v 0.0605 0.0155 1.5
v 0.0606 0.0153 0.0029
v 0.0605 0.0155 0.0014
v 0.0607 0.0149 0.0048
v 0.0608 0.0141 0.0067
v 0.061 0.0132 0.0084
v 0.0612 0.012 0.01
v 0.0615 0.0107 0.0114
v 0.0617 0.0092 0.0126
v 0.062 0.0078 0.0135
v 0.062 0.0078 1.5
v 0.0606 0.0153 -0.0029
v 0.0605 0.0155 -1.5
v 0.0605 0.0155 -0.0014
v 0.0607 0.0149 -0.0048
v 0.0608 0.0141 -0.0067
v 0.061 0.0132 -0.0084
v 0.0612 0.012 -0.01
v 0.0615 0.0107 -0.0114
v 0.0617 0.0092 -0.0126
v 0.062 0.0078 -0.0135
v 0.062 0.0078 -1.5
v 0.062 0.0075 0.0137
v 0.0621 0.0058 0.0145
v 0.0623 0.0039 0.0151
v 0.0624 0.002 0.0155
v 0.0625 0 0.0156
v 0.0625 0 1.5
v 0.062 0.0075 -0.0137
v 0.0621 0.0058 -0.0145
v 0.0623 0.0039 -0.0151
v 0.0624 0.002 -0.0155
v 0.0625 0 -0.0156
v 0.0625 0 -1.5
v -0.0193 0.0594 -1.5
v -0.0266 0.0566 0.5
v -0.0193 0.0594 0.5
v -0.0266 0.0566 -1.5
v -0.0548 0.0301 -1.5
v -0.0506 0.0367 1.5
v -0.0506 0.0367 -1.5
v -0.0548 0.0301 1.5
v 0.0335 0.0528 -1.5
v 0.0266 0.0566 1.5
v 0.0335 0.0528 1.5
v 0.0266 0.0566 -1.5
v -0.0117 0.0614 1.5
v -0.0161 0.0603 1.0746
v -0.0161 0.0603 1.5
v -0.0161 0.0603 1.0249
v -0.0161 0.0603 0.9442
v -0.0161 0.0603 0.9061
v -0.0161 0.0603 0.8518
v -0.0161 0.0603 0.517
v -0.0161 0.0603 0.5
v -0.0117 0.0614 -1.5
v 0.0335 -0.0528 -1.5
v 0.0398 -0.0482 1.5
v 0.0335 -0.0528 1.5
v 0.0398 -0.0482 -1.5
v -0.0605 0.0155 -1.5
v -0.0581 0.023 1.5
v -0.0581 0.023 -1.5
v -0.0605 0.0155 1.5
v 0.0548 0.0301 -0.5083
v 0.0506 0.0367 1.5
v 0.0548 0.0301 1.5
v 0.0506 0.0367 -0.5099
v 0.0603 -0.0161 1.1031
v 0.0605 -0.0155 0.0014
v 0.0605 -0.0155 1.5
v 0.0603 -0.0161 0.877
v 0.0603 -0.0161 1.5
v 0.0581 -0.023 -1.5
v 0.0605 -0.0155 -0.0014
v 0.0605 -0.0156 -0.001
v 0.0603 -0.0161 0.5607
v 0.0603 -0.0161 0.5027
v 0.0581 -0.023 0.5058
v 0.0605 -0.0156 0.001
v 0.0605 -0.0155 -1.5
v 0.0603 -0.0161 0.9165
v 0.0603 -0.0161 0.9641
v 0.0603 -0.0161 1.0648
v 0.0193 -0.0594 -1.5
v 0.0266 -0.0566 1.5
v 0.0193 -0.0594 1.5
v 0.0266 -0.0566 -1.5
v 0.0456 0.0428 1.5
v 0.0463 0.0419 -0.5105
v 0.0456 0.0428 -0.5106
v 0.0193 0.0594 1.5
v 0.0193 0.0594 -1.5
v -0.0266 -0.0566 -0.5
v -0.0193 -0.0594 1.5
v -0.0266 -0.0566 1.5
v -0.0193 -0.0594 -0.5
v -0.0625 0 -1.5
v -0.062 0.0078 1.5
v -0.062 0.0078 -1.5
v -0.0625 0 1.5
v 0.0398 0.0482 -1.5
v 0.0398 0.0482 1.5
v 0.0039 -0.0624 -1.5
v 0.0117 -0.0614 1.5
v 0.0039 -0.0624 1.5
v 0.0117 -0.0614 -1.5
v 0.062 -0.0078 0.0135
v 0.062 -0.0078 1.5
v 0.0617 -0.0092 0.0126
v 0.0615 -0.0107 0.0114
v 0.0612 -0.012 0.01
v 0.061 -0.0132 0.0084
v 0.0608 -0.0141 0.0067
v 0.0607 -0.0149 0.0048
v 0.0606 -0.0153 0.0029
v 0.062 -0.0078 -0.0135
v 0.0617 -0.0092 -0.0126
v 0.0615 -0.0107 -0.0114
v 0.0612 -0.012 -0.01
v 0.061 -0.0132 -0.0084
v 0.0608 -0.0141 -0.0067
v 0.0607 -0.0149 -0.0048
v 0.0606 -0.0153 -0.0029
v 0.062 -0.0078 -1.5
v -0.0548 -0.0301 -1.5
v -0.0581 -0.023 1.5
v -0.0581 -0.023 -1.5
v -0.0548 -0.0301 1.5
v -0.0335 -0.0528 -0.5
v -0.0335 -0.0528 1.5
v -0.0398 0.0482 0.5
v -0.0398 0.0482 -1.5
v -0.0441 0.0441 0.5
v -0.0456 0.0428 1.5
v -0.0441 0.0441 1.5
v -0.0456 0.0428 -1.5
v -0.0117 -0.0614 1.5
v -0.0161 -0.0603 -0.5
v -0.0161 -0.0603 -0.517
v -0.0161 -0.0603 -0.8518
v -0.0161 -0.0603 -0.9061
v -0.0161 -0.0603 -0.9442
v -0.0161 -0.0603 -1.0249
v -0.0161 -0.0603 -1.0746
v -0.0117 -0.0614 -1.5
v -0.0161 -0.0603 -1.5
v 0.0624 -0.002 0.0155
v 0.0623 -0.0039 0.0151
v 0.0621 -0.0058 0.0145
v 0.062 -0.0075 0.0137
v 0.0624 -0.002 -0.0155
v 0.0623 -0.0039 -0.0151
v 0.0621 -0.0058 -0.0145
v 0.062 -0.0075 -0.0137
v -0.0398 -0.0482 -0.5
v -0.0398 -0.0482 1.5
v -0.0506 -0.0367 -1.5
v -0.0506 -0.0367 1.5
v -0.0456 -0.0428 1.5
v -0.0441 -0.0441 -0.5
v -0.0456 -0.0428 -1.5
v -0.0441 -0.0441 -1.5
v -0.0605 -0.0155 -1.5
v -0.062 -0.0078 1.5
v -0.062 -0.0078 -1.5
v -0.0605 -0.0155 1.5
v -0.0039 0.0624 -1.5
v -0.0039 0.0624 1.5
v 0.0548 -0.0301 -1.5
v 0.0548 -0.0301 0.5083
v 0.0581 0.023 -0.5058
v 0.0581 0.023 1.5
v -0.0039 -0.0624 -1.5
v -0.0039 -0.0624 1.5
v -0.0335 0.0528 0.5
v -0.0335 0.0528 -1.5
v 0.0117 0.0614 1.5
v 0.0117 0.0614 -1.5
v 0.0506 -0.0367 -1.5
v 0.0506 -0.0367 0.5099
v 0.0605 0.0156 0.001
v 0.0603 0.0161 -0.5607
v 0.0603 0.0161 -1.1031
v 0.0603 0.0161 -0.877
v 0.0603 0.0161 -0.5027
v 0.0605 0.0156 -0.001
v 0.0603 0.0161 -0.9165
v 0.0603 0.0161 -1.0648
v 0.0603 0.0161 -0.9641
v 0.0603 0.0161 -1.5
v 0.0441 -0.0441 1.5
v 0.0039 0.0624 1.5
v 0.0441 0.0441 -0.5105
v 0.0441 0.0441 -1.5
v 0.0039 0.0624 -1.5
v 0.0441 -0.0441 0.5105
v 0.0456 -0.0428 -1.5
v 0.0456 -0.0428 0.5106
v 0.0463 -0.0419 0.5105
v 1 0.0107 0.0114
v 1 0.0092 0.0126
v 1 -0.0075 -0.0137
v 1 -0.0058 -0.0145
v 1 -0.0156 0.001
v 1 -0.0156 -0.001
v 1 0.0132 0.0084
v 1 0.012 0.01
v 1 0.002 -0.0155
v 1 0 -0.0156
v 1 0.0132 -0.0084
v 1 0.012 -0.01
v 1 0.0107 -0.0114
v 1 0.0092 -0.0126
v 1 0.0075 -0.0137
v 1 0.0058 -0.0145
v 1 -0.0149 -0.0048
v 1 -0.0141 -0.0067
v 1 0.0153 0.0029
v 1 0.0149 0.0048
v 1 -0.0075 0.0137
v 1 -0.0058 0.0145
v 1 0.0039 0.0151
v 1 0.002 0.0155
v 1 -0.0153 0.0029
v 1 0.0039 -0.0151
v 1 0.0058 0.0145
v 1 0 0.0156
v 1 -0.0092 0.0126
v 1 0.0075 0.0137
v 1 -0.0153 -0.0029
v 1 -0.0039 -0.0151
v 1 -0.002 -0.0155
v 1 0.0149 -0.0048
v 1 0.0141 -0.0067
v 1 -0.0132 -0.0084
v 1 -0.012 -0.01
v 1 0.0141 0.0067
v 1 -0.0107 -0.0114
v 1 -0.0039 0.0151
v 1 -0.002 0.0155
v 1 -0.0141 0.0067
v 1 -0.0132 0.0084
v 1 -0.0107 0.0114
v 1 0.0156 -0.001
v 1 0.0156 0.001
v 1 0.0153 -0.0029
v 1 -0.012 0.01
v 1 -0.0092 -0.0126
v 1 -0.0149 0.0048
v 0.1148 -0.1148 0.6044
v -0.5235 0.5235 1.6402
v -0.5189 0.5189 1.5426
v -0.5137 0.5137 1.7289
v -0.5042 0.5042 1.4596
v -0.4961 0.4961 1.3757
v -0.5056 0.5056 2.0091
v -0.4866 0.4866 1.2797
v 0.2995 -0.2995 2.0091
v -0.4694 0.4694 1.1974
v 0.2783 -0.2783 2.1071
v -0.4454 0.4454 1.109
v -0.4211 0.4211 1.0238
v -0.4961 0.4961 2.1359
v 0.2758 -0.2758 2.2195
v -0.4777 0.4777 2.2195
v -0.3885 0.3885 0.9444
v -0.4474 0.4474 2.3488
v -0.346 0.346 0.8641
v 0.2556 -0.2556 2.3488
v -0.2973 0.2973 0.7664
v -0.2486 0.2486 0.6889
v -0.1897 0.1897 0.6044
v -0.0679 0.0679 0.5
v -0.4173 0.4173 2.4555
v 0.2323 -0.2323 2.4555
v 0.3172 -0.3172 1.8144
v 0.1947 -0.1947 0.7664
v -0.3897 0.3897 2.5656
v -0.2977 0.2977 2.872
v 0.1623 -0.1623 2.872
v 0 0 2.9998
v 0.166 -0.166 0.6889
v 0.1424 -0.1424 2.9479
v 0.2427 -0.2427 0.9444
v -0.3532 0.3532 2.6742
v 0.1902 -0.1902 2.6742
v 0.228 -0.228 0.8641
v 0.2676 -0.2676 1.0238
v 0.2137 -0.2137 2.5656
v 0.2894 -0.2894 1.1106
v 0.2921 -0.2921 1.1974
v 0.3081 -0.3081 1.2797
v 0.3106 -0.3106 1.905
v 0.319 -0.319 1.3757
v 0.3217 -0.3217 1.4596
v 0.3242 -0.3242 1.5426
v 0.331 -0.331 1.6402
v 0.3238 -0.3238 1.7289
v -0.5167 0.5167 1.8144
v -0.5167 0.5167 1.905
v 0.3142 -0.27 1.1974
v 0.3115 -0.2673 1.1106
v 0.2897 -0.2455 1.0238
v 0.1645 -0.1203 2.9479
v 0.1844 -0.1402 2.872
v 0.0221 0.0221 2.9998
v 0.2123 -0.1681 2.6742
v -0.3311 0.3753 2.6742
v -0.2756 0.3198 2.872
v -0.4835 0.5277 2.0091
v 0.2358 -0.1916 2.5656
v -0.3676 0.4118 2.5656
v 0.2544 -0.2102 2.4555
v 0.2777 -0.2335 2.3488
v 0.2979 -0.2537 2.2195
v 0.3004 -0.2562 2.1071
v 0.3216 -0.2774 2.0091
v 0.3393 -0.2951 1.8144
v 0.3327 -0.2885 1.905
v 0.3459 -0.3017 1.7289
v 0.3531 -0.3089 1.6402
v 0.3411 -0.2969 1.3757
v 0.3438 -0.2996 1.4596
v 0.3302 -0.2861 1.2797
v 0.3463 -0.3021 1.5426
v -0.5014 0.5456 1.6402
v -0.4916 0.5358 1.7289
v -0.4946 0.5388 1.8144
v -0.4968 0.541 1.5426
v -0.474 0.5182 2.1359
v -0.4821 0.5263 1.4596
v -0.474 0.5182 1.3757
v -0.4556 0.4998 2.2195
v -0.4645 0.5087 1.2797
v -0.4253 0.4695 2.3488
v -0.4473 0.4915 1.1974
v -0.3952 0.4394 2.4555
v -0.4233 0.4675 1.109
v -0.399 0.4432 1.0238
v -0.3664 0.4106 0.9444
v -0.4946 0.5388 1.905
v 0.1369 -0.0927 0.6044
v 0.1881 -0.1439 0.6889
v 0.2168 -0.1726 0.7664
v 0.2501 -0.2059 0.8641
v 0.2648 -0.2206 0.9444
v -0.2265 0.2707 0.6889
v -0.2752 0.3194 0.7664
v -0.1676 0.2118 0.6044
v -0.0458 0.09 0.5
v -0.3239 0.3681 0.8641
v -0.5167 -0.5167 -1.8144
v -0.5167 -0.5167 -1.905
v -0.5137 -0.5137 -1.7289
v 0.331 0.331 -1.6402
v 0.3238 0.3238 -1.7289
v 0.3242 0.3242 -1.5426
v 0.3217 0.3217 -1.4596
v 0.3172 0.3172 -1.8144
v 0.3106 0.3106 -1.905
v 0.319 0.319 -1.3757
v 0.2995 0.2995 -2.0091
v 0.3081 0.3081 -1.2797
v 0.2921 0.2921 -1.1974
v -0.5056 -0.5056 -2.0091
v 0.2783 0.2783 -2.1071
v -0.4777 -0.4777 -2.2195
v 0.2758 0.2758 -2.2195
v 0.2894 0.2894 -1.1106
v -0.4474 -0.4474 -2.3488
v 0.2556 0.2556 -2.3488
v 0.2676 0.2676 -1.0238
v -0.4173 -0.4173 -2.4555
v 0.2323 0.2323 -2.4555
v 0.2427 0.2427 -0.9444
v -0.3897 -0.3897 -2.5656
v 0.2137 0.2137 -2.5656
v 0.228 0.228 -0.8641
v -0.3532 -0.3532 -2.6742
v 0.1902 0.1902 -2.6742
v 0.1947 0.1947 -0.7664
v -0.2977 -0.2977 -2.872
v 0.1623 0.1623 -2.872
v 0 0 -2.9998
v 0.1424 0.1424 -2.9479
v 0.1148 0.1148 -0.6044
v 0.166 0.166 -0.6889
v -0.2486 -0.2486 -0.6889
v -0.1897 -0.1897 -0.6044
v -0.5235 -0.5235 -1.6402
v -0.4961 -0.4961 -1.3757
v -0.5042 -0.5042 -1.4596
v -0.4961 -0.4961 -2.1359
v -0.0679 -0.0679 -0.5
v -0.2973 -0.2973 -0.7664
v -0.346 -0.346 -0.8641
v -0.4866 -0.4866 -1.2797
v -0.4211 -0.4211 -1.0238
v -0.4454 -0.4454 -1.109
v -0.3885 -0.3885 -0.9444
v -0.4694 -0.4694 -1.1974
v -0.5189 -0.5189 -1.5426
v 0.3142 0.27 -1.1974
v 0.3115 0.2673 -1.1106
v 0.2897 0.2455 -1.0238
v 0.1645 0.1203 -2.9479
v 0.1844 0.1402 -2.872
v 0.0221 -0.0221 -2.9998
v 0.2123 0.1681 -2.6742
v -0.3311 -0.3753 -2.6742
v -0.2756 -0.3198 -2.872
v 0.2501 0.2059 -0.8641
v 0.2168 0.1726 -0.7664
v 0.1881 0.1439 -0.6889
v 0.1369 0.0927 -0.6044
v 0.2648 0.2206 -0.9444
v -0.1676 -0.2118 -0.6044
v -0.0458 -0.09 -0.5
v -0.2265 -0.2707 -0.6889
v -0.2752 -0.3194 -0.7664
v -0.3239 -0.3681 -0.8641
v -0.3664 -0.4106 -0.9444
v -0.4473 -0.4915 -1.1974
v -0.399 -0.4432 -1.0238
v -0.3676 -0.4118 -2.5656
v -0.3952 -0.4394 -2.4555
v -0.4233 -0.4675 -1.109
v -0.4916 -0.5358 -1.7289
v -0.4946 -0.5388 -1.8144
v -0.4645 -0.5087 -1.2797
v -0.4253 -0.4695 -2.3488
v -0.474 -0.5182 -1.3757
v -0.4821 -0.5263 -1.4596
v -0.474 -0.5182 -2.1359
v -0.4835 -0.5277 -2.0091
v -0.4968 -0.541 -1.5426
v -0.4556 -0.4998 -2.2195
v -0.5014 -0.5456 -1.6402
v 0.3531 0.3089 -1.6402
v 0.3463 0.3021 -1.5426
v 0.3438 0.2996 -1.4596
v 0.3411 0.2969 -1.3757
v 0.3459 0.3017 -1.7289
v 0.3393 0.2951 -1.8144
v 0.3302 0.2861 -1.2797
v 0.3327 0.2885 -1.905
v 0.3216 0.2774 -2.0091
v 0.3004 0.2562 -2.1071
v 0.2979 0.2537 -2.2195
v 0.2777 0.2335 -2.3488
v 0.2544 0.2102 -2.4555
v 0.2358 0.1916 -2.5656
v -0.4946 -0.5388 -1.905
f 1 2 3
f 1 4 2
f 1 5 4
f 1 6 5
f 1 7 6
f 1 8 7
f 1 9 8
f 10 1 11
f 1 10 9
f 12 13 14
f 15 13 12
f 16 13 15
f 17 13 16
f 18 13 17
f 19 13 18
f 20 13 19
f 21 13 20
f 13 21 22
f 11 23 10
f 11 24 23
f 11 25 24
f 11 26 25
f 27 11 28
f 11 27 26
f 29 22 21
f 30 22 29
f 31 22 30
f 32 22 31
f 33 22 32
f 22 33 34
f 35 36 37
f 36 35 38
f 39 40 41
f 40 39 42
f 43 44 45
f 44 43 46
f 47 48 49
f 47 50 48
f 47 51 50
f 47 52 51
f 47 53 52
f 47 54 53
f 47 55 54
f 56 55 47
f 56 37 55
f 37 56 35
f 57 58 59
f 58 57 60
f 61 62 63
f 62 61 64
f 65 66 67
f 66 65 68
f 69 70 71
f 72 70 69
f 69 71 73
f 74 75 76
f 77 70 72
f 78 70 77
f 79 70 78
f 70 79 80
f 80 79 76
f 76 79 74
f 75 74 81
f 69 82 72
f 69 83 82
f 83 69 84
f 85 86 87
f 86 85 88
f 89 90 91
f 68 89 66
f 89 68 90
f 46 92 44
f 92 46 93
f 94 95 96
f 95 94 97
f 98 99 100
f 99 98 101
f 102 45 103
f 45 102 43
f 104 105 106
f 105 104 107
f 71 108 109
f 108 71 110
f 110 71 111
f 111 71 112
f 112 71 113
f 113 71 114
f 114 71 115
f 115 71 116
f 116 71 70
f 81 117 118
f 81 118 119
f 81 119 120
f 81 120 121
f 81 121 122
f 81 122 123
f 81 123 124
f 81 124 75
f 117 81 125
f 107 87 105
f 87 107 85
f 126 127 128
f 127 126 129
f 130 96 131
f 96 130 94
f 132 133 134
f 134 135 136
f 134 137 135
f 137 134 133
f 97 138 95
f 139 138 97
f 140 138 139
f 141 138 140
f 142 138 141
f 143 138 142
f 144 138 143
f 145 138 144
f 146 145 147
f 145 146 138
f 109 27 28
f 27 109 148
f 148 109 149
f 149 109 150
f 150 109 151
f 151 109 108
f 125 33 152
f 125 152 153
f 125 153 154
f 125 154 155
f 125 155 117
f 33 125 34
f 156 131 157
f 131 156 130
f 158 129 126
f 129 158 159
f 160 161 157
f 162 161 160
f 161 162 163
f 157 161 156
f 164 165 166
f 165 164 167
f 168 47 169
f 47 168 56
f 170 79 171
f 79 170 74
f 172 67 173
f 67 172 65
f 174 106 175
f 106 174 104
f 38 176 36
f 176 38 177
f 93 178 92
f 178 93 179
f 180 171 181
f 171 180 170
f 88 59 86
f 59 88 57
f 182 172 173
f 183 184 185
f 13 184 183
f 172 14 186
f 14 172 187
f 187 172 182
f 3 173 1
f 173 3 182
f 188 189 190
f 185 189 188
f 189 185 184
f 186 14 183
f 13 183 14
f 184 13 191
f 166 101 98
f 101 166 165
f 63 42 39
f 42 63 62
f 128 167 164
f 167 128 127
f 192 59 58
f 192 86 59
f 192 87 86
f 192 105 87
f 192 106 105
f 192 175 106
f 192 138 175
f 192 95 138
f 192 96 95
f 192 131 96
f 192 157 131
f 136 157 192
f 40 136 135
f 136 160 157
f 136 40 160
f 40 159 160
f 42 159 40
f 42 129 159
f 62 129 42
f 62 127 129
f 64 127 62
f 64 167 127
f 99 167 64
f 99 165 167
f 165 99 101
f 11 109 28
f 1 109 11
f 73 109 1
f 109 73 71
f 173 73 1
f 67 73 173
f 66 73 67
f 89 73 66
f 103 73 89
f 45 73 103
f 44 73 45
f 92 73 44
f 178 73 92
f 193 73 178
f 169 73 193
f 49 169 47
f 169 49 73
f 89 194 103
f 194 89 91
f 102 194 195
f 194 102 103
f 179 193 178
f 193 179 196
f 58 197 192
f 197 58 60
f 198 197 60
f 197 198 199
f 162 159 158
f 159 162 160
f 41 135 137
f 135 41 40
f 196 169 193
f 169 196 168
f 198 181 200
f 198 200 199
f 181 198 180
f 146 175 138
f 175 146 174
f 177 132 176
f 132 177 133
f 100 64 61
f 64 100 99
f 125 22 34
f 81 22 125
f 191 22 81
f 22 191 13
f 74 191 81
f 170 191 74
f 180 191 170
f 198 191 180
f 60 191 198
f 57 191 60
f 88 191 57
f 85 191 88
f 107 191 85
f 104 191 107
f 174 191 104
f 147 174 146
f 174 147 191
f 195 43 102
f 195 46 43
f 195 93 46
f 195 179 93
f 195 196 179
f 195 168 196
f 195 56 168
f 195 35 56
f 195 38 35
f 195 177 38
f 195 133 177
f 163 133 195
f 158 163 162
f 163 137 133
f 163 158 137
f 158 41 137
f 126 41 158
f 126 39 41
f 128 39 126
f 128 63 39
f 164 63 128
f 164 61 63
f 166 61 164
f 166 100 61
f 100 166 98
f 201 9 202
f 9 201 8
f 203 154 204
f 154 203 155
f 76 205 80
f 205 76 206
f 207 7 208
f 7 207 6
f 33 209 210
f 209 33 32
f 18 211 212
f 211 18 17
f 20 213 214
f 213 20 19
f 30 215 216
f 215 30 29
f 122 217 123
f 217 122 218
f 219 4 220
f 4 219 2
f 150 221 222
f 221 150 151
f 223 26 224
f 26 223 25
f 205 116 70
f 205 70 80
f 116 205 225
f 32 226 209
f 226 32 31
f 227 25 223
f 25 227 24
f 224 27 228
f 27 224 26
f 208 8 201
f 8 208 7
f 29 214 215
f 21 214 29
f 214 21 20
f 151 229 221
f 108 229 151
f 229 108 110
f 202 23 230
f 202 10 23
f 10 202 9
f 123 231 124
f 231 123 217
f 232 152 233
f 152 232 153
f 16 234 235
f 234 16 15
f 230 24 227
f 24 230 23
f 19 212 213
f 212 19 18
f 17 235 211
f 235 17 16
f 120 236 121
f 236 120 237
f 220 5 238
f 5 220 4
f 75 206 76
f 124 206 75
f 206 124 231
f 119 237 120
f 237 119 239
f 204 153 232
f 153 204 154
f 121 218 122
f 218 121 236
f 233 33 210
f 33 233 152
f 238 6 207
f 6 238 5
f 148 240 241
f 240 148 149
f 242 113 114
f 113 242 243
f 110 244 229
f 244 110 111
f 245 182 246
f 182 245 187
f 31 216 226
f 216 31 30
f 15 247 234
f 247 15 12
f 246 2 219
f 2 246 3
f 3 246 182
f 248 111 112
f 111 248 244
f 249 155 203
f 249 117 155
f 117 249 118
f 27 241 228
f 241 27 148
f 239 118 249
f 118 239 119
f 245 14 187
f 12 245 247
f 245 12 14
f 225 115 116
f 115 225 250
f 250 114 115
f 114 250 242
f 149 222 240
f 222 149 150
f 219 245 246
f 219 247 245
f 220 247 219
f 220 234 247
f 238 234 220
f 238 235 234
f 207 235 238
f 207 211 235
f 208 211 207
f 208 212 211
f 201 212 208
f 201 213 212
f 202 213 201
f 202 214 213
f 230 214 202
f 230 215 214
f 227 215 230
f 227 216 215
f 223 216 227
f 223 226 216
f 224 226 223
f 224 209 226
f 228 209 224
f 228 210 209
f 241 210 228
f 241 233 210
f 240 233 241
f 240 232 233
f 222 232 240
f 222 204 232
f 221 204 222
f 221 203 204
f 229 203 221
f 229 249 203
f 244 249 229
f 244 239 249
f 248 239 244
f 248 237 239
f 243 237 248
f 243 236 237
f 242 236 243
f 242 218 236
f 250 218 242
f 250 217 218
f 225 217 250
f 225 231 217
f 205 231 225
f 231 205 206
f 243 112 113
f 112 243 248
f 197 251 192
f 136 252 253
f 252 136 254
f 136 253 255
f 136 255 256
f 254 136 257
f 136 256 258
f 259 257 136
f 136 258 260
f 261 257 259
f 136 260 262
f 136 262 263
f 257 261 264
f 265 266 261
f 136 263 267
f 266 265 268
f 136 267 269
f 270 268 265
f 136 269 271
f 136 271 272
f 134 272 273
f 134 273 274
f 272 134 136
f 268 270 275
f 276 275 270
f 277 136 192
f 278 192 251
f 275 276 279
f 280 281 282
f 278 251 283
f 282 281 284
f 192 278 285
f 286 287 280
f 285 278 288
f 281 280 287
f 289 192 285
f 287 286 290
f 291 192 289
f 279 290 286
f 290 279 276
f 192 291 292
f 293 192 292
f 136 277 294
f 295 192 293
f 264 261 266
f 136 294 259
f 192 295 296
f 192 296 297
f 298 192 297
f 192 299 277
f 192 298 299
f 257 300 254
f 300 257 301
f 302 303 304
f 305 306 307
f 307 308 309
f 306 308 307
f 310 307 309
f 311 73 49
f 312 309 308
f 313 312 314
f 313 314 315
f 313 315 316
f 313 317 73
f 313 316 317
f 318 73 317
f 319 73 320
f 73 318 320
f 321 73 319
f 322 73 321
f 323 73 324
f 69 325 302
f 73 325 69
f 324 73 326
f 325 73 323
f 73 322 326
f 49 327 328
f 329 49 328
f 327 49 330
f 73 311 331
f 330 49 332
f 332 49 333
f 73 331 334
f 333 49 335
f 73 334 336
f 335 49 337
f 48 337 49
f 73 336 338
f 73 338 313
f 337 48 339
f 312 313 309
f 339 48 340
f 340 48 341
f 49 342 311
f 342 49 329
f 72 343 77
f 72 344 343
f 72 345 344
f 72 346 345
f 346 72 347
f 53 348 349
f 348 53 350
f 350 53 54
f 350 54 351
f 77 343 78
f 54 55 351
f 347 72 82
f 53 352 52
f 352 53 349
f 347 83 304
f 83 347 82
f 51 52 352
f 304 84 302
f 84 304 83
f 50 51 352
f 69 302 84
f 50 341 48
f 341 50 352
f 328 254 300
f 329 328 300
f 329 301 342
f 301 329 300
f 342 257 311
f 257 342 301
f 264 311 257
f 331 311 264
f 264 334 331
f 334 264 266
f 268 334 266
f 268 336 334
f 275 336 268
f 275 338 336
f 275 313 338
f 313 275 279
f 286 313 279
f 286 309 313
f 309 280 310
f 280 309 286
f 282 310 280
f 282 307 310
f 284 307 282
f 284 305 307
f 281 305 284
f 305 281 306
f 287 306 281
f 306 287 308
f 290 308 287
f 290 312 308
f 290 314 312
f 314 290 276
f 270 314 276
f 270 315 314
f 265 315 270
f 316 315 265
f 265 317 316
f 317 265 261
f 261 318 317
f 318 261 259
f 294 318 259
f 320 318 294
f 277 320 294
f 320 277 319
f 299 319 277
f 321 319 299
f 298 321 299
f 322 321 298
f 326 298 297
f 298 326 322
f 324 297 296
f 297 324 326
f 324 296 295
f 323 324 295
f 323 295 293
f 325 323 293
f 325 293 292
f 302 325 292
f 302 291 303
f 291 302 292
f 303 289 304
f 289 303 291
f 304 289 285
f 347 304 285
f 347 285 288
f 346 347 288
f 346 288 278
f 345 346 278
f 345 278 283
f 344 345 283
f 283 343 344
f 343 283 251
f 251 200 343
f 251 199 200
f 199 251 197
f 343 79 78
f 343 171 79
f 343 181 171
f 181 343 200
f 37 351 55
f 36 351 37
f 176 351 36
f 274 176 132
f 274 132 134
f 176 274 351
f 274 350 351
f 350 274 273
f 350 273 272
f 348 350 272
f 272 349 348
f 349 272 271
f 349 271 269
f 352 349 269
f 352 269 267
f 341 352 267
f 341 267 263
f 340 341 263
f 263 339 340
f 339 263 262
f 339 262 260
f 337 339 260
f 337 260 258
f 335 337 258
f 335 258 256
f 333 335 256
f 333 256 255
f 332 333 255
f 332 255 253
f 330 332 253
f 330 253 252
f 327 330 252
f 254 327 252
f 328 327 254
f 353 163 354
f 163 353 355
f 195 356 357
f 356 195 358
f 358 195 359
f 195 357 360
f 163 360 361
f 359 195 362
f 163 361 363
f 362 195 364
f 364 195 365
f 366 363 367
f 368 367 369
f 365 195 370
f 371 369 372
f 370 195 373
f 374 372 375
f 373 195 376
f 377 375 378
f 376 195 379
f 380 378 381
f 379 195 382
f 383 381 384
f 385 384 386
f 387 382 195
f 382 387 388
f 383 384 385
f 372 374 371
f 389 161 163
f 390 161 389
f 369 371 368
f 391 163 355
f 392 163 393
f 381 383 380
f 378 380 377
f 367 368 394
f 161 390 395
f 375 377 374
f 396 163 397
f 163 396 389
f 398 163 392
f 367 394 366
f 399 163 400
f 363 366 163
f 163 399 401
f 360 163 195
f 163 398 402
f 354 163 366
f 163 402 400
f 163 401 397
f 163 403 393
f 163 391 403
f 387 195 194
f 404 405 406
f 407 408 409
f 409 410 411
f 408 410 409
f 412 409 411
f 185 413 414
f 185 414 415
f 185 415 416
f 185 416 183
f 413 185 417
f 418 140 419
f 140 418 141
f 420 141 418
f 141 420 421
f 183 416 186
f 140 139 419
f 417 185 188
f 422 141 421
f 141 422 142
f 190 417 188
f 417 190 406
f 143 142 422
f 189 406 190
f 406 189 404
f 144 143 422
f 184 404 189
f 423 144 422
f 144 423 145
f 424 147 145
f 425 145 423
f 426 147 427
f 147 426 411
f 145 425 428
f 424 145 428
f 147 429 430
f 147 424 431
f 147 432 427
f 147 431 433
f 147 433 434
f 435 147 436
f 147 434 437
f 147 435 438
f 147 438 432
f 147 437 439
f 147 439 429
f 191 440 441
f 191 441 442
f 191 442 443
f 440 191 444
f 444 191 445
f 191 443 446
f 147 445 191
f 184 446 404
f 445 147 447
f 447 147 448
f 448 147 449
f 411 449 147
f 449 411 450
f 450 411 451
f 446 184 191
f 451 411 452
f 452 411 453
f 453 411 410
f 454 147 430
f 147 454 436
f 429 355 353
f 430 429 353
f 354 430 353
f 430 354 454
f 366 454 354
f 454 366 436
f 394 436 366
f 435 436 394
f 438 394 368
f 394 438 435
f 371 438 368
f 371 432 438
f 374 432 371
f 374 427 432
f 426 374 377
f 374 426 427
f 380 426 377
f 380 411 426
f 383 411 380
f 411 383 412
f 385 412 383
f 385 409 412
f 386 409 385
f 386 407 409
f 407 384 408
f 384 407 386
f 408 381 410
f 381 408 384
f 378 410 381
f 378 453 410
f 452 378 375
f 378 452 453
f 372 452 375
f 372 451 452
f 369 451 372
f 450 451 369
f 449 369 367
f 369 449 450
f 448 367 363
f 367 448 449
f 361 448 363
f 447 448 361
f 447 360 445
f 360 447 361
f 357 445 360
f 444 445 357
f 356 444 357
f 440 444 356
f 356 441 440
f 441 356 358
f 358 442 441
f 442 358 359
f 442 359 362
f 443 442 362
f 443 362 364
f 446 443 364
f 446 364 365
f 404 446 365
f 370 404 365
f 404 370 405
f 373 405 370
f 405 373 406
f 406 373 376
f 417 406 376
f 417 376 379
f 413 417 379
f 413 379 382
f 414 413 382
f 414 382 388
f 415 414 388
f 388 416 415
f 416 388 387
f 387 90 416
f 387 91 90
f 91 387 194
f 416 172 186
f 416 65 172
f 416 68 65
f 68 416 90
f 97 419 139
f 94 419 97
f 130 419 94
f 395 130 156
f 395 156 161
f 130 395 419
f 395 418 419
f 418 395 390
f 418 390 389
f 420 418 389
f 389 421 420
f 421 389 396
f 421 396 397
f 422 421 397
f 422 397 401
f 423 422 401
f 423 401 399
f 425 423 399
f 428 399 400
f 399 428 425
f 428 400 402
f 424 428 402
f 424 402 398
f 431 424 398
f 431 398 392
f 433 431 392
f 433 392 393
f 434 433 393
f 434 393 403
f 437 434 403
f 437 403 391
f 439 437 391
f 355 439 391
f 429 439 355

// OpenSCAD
// file: wart_blade.scad
wart_coords = [
	[0.000,0.000],
	[0.000,0.160],
	[0.326,0.507],
	[0.590,0.733],
	[0.832,0.860],
	[1.137,1.007],
	[1.388,1.072],
	[1.636,1.182],
	[1.907,1.278],
	[2.178,1.290],
	[2.435,1.361],
	[2.735,1.409],
	[2.997,1.421],
	[3.256,1.432],
	[3.561,1.462],
	[3.838,1.430],
	[4.105,1.401],
	[4.388,1.372],
	[4.713,1.323],
	[5.019,1.229],
	[5.370,1.218],
	[5.774,1.129],
	[6.107,1.026],
	[6.451,0.944],
	[6.790,0.840],
	[7.408,0.717],
	[7.645,0.629],
	[7.807,0.000],
	[7.408,-1.315],
	[6.790,-1.560],
	[6.451,-1.721],
	[6.107,-1.843],
	[5.774,-1.976],
	[5.370,-2.110],
	[5.109,-2.191],
	[4.713,-2.233],
	[4.388,-2.282],
	[4.105,-2.282],
	[3.838,-2.269],
	[3.561,-2.312],
	[3.256,-2.292],
	[2.997,-2.227],
	[2.735,-2.191],
	[2.435,-2.149],
	[2.178,-2.073],
	[1.902,-1.967],
	[1.636,-1.860],
	[1.388,-1.716],
	[1.137,-1.528],
	[0.832,-1.313],
	[0.590,-1.098],
	[0.326,-0.838],
	[0.000,-0.300],
	[0.000,0.000]
];
// file: prop_blade.scad
include <./wart_blade.scad>
include <MMlib/colors.scad>

sf = 0.3202;

module prop_blade() {
  color(WOOD_Balsa) {
    translate([0,0,0])
    rotate([0,-90,-90])
    linear_extrude(
            height = 1/32,
            center = false,
            convexity = 10)
        scale([sf,sf])
            polygon(wart_coords);
    }
}

prop_blade();
// file: MMlib/colors.scad
// colors.scad
// Credit: David Powell, OpenSCAN Forum



//group ABS_<colorname>
//	discription  common 3d printer ABS filament colors
// actual colours may need some tweaking

ABS_Nature =[0.8,0.8,0.8,0.8];
ABS_White =[0.9,0.9,0.9,1];
ABS_Black =[0.1,0.1,0.1,1];
ABS_Red = [0.7,0,0,1];
ABS_Green = [0,0.7,0,1];
ABS_Blue = [0,0,0.7,1];
ABS_Orange =[0.8,0.4,0,1];
ABS_Purple =[0.7,0,0.7,1];
ABS_Brown =[0.6,0.2,0.2,1];
ABS_Glow_Blue =[0,0,.99,1];
ABS_Flurescence_Green =[0,1,0,1];
ABS_Flurescence_Yellow = [0.9,0.9,0,1];

//group PLA_<colorname>
//	discription  common 3d printer PLA filament colors
// actual colours may need some tweaking

PLA_Nature =[0.8,0.8,0.8,0.8];
PLA_White =[0.9,0.9,0.9,1];
PLA_Black =[0.1,0.1,0.1,1];
PLA_Red = [0.7,0,0,1];
PLA_Green = [0,0.7,0,1];
PLA_Blue = [0,0,0.7,1];
PLA_Orange =[0.8,0.4,0,1];
PLA_Purple =[0.7,0,0.7,1];
PLA_Brown =[0.6,0.2,0.2,1];
PLA_Glow_Blue =[0,0,.99,1];
PLA_Flurescence_Green =[0,1,0,1];
PLA_Flurescence_Yellow = [0.9,0.9,0,1];

//group ANODIZED_<colorname>
//	discription  common aluminium anodized colors
// these don't seem to follow normal color tables as the process
// produces a color change difference to the named color
// dew to base metal
// actual colours may need some tweaking

ANODIZED_Red =[0.7,0,0,1];
ANODIZED_Gold =[0.8,0.8,0.0,1];
ANODIZED_Black =[0.1,0.1,0.1,1];
ANODIZED_Blue =[0,0,0.7,1];
ANODIZED_Green =[0,0.5,0,1];
ANODIZED_Gray =[0.4,0.4,0.4,1];
ANODIZED_Dark_Blue =[0,0.2,0.6,1];
ANODIZED_Lime_Green =[0,0.8,0,1];
ANODIZED_Purple =[0.5,0,0.7,1];		//more blue than purple
ANODIZED_Light_Blue =[0.4,0.4,1,1];
ANODIZED_Pink =[0.7,0,0.7,1];		//more purlpe than pink
ANODIZED_Orange =[0.9,0.5,0,1];
ANODIZED_Scandia_Gold =[0.9,0.6,0.3,1];
ANODIZED_Copper =[0.7,0.5,0,1];		//more brown than copper
ANODIZED_Clear =[0.7,0.7,0.9,1];	//natural aluminium color
ANODIZED_Light_Bronze =[0.4,0.4,0.3,1]; //more silver than bronze
ANODIZED_Gold_Nickel =[0.8,0.8,0.6,1];
ANODIZED_Brush_Nickel =[0.8,0.8,0.7,1];

//group METAL_<typename>
//	discription common metal colors
// colors need tweaking

METAL_Aluminium = [0.7,0.7,0.8,1];
METAL_Brass = [0.88,0.78,0.5,1];
METAL_Copper = [0.9,0.6,0.5,1];
METAL_Steel = [0.9,0.9,0.8,1];
METAL_Stainless = [0.8,0.8,0.7,1];
METAL_Titanium = [0.7,0.7,0.6,1];
METAL_Bronze = [0.9,0.4,0.4,1];
METAL_Gold = [0.9,0.9,0.0,1];
METAL_Silver = [0.8,0.8,0.8,1];
METAL_Iron = [0.6,0.6,0.6,1];

// group WOOD_<typename>
//	discription common wood colors
// probabaly wrong

WOOD_Oak = [0.4,0.2,0.2,1];
WOOD_Birch = [0.8,0.8,0.4,1];
WOOD_Red = [0.7,0.3,0.3,1];
WOOD_pine = [0.8,0.8,0.4,1];
WOOD_Beach = [0.8,0.6,0.3,1];
WOOD_Spruce = [0.8,0.8,0.7,1];
WOOD_Balsa = [0.95,0.86,0.73];

// group GLASS_<color>
//	discription common glass colors
// needs tweaking

GLASS_Clear = [0.8,0.8,0.8,0.2];
GLASS_Red = [0.8,0,0,0.4];
GLASS_Green = [0,0.8,0,.4];
GLASS_Blue = [0,0,0.8,.4];
GLASS_Brown = [0.5,0.3,0.1,.4];

CONCRETE = [210/255, 209/255, 205/255];
// file: ../wart_data.scad
//######################################
// A6 - class rule constraints

max_wing_area = 30;		// square inches
spar_size = 1/16;
min_rib_thickness = 1/32;
min_rib_height = 1/16;
max_motor_stick_length = 6;
max_prop_diameter = 6;
prop_blade_thickness = 1/32;	// flat
min_weight = 1.2;			        // grams

//##################################################
// paper tubes
pt_t = 1/64;
pt_id = 1/16;
pt_r = 1/32;
pt_h = 0.25;

//######################################
wing_center_chord = 2;
wing_center_span = 8;
wing_tip_chord = 1.75;
wing_tip_span = 3.75;
wing_rib_camber = 4;
wing_tip_dihedral = 7/16;
winglet_chord = 1.75;
winglet_span = 1.25;

//######################################
stab_center_chord = 1.75;
stab_tip_chord = 1;
stab_span = 10 + 14/16;
stab_camber = 2;
stab_tip_dihedral = 7/8;

//######################################
fin_radius = 2;

//######################################
ms_length = max_motor_stick_length;
ms_front_height = 0.160;
ms_height = 0.190;
ms_rear_height = 0.160;
ms_front_post = 1.25;
ms_thickness = 0.070;
wing_post_height = 7/8;

// motor stick polygon
ms_x0 = 0.0;
ms_x1 = ms_length;
ms_x2 = ms_length;
ms_x3 = ms_front_post + wing_center_chord + 2 * (pt_r + pt_t);
ms_x4 = ms_front_post + pt_r + pt_t;
ms_x5 = 0.25;
ms_x6 = 0.0;

ms_y = ms_thickness;

ms_z0 = 0.0;
ms_z1 = 0.0;
ms_z2 = ms_rear_height;
ms_z3 = ms_height;
ms_z4 = ms_height;
ms_z5 = 0.18;
ms_z6 = ms_front_height;

ms_poly = [
    [ms_x0, ms_z0],
    [ms_x1, ms_z1],
    [ms_x2, ms_z2],
    [ms_x3, ms_z3],
    [ms_x4, ms_z4],
    [ms_x5, ms_z5],
    [ms_x6, ms_z6],
];

//######################################
tail_boom_length = 8.5;
tail_boom_front_height = 1/8;
tail_boom_thickness = 1/16;
tail_boom_rear_height = 1/16;
tail_boom_overlap = 0.5;
tail_boom_elevation = ms_rear_height + 3/16;
tb_overlap = 0.25;
// main file
include <../wart_data.scad>
include <MMlib/colors.scad>
use <./prop_blade.scad>

$fn=50;
prop_spar_l = 3;
prop_spar_center_r = 1/16;
prop_spar_tip_r = 1/16;
prop_pitch_angle = 45;

module prop_spar() {
    color(WOOD_Balsa) {
        cylinder(
            h=prop_spar_l/2,
            r1=prop_spar_center_r,
            r2=prop_spar_tip_r);
        rotate([180,0,0])
            cylinder(
            h=prop_spar_l/2,
            r1=prop_spar_center_r,
            r2=prop_spar_tip_r);
    }
}

module prop_wire() {
    color(METAL_Aluminium)
    rotate([90,90,0]) cylinder(h=1, r=1/64);
}

module propeller() {
        prop_spar();
        rotate([0,0,90]) {
            prop_wire();
            rotate([0,0,180+prop_pitch_angle])
          translate([0,0,0.5])
            prop_blade();
          rotate([0,180,-180-prop_pitch_angle])
            translate([0,0,0.5])
            prop_blade();
    }
}

//

propeller();
